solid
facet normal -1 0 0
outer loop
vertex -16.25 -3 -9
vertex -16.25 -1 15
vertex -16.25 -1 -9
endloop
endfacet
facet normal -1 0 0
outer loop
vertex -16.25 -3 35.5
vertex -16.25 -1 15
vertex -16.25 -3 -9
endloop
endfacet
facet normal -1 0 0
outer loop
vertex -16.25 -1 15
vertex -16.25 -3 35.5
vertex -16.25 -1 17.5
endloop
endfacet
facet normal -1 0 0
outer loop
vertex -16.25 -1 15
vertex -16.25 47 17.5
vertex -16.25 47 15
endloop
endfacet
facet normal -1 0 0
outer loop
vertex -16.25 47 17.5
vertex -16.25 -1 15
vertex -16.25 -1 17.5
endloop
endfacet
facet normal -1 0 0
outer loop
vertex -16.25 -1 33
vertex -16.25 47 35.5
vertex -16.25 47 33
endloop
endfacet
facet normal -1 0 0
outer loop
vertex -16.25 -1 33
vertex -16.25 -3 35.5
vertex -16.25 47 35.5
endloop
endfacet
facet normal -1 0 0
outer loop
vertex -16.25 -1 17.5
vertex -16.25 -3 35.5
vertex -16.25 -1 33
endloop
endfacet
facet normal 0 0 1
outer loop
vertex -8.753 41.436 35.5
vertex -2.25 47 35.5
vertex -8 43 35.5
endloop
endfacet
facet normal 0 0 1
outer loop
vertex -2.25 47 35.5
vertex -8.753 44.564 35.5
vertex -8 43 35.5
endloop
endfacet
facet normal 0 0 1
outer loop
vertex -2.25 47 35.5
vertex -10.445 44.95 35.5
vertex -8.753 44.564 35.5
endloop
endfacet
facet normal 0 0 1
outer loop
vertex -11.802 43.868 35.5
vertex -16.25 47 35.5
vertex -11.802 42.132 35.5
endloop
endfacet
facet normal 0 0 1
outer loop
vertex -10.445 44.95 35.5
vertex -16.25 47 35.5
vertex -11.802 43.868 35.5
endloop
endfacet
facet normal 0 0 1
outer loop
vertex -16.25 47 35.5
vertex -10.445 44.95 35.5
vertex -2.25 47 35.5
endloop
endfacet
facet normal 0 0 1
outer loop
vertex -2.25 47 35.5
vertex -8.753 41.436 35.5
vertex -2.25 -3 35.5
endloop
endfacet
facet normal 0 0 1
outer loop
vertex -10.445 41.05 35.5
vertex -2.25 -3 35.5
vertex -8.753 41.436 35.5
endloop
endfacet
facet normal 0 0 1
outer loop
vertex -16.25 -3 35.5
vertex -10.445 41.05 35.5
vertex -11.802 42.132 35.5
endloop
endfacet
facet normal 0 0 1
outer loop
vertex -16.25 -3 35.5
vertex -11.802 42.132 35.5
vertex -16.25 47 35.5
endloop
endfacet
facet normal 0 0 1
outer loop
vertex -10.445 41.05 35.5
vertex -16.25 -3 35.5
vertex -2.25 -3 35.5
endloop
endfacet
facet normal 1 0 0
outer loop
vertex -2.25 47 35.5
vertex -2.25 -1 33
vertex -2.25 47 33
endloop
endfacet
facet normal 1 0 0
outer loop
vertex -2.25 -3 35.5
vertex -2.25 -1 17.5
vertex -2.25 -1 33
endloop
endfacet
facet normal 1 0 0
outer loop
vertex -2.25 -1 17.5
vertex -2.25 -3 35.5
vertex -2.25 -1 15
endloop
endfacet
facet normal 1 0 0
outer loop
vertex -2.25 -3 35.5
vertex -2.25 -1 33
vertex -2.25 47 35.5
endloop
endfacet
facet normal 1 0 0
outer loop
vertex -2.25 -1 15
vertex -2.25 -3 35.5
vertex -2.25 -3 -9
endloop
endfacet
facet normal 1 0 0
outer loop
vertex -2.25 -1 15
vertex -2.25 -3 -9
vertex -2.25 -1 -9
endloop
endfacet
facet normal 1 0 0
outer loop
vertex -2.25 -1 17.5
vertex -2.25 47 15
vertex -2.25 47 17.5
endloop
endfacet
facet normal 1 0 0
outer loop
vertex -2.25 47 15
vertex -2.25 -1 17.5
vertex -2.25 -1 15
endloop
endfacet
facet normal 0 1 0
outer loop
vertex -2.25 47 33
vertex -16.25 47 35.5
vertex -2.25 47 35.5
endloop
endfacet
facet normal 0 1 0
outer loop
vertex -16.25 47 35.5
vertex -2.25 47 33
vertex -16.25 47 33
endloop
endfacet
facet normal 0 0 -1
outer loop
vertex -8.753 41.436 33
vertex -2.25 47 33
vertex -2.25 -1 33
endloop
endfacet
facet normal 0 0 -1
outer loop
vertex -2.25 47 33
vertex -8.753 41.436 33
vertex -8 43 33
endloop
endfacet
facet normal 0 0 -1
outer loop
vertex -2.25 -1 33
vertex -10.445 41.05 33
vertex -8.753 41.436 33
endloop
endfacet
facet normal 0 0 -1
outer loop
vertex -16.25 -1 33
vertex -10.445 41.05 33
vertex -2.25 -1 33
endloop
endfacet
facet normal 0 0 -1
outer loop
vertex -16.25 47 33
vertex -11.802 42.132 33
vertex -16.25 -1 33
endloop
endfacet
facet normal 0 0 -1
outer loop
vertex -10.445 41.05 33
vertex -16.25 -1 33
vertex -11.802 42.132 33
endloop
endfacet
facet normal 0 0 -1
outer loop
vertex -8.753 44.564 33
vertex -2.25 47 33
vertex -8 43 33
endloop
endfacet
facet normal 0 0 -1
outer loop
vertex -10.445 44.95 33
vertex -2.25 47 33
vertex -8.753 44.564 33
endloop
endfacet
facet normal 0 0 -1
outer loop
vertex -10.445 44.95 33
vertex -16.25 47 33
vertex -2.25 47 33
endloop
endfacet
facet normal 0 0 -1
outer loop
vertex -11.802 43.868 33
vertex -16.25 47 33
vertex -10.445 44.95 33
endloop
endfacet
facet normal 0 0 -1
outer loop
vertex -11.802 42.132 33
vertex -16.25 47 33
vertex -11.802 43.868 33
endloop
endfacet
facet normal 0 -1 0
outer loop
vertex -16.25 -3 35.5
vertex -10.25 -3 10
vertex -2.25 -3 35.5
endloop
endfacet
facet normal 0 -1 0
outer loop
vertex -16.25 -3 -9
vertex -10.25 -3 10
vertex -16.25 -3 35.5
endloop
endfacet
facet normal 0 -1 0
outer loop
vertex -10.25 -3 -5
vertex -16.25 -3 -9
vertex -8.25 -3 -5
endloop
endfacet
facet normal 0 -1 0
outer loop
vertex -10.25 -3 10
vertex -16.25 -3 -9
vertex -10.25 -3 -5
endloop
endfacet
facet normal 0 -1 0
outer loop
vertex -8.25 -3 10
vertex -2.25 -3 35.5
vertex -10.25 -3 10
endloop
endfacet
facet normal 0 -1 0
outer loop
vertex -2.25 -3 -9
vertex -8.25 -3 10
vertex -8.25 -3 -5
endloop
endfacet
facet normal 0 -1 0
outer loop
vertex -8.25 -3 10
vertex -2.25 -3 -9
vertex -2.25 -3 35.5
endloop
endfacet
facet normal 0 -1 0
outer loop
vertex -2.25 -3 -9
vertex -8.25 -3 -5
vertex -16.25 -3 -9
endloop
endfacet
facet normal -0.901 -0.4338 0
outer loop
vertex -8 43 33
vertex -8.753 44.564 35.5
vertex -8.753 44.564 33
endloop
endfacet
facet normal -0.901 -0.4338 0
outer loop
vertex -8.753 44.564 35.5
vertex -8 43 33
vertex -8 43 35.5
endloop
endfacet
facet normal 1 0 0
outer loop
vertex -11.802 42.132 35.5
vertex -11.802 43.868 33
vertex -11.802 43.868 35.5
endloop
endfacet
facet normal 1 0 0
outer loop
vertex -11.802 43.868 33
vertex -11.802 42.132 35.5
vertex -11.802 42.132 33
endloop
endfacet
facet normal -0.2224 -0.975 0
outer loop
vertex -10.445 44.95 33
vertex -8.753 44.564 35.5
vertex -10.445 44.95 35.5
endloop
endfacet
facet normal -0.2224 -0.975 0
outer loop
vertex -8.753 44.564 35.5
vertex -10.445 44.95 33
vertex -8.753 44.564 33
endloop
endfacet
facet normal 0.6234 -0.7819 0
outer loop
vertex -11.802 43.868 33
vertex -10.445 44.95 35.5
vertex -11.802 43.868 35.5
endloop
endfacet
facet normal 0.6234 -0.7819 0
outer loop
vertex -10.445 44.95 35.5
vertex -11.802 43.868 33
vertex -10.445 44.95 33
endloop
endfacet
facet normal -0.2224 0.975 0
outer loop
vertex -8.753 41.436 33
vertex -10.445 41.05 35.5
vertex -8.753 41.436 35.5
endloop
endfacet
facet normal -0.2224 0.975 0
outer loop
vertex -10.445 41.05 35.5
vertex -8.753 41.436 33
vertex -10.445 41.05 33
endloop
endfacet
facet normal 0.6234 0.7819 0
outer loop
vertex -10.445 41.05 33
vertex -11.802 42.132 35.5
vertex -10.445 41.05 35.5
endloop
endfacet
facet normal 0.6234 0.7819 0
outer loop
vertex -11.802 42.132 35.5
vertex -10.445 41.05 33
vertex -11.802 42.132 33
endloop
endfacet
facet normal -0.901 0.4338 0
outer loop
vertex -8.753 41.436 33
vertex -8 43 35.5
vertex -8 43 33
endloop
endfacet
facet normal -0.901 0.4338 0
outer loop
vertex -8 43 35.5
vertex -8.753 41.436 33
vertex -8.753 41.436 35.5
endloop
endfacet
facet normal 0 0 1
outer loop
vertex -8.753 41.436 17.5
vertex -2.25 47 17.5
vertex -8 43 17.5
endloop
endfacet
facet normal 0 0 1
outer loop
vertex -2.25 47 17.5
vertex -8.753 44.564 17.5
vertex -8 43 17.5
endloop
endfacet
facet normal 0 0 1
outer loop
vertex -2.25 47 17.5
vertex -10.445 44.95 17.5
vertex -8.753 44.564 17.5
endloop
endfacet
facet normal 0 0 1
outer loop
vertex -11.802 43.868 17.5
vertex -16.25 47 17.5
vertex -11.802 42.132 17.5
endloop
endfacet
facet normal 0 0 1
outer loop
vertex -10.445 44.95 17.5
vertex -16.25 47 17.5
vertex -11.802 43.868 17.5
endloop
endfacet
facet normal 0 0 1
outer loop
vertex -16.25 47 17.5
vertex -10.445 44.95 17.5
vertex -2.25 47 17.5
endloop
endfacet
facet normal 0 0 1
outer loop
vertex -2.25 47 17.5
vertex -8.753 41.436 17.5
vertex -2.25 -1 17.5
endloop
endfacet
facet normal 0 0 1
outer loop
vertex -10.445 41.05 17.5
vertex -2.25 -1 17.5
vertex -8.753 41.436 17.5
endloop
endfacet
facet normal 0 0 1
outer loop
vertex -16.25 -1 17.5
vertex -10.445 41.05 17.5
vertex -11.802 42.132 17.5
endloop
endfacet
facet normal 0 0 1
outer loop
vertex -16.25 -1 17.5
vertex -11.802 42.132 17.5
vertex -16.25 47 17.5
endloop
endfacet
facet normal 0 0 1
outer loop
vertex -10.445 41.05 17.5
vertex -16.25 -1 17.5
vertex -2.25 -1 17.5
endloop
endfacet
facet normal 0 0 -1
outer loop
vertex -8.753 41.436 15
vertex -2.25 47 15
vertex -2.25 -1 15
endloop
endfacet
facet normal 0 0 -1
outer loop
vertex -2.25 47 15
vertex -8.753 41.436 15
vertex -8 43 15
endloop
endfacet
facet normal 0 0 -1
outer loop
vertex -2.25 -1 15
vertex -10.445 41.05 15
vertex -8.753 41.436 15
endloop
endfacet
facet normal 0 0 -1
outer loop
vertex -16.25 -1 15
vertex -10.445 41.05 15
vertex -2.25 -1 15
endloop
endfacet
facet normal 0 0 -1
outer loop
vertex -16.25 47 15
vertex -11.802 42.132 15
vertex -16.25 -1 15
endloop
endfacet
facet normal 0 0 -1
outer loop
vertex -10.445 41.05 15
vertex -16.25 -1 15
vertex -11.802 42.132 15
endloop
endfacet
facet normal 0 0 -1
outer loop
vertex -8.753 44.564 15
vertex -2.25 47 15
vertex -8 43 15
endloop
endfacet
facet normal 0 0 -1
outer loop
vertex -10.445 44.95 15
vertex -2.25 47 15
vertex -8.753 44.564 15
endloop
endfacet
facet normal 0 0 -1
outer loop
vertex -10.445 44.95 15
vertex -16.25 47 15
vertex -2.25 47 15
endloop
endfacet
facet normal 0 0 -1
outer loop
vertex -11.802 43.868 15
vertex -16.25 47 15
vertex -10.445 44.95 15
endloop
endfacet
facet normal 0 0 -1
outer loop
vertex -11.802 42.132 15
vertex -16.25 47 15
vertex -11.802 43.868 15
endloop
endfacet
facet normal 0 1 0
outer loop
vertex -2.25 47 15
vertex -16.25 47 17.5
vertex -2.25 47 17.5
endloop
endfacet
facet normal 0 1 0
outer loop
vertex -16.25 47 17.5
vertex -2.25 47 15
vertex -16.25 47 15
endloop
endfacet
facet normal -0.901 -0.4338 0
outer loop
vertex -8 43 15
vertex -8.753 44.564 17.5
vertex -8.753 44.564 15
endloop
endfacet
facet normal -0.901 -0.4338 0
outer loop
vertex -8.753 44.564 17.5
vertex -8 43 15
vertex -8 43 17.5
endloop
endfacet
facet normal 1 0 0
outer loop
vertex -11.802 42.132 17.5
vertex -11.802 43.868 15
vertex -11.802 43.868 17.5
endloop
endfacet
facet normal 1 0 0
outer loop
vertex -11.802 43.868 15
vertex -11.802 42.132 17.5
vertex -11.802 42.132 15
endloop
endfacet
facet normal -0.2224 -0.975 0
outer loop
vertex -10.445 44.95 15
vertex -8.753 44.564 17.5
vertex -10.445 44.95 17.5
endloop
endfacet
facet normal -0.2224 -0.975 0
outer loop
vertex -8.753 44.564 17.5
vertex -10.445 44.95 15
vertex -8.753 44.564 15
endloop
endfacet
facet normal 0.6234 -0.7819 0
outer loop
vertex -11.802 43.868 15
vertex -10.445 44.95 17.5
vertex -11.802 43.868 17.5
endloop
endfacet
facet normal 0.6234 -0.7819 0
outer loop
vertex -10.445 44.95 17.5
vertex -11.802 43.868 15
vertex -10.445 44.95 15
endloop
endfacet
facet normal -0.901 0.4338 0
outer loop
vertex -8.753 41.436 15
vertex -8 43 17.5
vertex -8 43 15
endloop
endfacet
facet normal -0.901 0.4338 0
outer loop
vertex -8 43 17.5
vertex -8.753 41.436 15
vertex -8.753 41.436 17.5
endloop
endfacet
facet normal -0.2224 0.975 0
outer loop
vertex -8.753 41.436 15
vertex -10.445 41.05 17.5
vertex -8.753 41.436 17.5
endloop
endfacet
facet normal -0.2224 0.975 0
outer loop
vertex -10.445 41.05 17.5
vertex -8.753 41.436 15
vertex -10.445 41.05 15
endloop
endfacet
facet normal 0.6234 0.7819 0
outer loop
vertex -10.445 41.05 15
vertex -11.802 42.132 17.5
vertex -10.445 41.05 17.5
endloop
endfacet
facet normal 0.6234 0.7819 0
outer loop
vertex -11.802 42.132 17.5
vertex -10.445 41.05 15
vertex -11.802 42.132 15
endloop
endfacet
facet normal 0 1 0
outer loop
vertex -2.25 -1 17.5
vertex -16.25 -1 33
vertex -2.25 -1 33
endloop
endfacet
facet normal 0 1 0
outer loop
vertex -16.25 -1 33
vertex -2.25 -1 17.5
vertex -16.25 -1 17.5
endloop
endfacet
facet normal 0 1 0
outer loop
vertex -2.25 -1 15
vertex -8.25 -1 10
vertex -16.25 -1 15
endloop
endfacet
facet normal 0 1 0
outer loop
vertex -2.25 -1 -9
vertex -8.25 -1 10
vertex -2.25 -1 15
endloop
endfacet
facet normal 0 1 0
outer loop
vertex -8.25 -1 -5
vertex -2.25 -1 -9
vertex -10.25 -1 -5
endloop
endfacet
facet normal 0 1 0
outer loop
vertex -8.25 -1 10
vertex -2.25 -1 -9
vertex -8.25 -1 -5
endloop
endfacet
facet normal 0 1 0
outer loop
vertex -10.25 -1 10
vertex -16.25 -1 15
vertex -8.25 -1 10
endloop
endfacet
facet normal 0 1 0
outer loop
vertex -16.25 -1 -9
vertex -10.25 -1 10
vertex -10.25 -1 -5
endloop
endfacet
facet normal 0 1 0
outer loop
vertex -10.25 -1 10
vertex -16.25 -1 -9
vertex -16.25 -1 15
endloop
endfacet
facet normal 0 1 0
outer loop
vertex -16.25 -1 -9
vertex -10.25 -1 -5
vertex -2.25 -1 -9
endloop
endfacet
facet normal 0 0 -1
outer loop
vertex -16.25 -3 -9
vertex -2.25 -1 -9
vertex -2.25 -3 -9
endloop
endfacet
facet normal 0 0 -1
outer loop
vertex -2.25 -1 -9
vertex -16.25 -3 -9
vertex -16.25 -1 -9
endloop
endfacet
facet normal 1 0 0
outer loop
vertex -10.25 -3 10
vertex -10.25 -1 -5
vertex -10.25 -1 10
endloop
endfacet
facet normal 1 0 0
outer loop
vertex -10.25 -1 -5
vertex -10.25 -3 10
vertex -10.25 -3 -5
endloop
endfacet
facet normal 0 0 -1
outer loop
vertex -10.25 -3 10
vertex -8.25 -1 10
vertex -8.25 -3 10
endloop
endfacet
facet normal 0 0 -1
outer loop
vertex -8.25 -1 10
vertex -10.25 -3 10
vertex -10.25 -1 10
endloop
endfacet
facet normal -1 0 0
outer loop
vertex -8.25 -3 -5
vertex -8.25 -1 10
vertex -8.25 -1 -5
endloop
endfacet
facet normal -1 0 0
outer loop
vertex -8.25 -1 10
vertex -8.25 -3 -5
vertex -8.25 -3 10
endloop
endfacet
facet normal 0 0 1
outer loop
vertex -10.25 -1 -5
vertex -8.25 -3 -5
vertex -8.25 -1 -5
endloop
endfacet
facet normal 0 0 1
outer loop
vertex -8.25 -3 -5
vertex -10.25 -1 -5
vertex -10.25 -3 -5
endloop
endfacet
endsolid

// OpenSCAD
difference()
{
translate([-16.25,-3,-9])
{
    cube([14,2,42]);
}

translate([-10.25,-3,-5])
{
    cube([2,2,15]);
}


}

difference()
{
    
translate([-16.25,-3,33])
{
    cube([14,50,2.5]);
}

translate([-10,43,15])
{
    cylinder(30,2,2);
}
}

difference()
{
translate([-16.25,-3,15])
{
    cube([14,50,2.5]);
}

translate([-10,43,15])
{
    cylinder(30,2,2);
}
}
